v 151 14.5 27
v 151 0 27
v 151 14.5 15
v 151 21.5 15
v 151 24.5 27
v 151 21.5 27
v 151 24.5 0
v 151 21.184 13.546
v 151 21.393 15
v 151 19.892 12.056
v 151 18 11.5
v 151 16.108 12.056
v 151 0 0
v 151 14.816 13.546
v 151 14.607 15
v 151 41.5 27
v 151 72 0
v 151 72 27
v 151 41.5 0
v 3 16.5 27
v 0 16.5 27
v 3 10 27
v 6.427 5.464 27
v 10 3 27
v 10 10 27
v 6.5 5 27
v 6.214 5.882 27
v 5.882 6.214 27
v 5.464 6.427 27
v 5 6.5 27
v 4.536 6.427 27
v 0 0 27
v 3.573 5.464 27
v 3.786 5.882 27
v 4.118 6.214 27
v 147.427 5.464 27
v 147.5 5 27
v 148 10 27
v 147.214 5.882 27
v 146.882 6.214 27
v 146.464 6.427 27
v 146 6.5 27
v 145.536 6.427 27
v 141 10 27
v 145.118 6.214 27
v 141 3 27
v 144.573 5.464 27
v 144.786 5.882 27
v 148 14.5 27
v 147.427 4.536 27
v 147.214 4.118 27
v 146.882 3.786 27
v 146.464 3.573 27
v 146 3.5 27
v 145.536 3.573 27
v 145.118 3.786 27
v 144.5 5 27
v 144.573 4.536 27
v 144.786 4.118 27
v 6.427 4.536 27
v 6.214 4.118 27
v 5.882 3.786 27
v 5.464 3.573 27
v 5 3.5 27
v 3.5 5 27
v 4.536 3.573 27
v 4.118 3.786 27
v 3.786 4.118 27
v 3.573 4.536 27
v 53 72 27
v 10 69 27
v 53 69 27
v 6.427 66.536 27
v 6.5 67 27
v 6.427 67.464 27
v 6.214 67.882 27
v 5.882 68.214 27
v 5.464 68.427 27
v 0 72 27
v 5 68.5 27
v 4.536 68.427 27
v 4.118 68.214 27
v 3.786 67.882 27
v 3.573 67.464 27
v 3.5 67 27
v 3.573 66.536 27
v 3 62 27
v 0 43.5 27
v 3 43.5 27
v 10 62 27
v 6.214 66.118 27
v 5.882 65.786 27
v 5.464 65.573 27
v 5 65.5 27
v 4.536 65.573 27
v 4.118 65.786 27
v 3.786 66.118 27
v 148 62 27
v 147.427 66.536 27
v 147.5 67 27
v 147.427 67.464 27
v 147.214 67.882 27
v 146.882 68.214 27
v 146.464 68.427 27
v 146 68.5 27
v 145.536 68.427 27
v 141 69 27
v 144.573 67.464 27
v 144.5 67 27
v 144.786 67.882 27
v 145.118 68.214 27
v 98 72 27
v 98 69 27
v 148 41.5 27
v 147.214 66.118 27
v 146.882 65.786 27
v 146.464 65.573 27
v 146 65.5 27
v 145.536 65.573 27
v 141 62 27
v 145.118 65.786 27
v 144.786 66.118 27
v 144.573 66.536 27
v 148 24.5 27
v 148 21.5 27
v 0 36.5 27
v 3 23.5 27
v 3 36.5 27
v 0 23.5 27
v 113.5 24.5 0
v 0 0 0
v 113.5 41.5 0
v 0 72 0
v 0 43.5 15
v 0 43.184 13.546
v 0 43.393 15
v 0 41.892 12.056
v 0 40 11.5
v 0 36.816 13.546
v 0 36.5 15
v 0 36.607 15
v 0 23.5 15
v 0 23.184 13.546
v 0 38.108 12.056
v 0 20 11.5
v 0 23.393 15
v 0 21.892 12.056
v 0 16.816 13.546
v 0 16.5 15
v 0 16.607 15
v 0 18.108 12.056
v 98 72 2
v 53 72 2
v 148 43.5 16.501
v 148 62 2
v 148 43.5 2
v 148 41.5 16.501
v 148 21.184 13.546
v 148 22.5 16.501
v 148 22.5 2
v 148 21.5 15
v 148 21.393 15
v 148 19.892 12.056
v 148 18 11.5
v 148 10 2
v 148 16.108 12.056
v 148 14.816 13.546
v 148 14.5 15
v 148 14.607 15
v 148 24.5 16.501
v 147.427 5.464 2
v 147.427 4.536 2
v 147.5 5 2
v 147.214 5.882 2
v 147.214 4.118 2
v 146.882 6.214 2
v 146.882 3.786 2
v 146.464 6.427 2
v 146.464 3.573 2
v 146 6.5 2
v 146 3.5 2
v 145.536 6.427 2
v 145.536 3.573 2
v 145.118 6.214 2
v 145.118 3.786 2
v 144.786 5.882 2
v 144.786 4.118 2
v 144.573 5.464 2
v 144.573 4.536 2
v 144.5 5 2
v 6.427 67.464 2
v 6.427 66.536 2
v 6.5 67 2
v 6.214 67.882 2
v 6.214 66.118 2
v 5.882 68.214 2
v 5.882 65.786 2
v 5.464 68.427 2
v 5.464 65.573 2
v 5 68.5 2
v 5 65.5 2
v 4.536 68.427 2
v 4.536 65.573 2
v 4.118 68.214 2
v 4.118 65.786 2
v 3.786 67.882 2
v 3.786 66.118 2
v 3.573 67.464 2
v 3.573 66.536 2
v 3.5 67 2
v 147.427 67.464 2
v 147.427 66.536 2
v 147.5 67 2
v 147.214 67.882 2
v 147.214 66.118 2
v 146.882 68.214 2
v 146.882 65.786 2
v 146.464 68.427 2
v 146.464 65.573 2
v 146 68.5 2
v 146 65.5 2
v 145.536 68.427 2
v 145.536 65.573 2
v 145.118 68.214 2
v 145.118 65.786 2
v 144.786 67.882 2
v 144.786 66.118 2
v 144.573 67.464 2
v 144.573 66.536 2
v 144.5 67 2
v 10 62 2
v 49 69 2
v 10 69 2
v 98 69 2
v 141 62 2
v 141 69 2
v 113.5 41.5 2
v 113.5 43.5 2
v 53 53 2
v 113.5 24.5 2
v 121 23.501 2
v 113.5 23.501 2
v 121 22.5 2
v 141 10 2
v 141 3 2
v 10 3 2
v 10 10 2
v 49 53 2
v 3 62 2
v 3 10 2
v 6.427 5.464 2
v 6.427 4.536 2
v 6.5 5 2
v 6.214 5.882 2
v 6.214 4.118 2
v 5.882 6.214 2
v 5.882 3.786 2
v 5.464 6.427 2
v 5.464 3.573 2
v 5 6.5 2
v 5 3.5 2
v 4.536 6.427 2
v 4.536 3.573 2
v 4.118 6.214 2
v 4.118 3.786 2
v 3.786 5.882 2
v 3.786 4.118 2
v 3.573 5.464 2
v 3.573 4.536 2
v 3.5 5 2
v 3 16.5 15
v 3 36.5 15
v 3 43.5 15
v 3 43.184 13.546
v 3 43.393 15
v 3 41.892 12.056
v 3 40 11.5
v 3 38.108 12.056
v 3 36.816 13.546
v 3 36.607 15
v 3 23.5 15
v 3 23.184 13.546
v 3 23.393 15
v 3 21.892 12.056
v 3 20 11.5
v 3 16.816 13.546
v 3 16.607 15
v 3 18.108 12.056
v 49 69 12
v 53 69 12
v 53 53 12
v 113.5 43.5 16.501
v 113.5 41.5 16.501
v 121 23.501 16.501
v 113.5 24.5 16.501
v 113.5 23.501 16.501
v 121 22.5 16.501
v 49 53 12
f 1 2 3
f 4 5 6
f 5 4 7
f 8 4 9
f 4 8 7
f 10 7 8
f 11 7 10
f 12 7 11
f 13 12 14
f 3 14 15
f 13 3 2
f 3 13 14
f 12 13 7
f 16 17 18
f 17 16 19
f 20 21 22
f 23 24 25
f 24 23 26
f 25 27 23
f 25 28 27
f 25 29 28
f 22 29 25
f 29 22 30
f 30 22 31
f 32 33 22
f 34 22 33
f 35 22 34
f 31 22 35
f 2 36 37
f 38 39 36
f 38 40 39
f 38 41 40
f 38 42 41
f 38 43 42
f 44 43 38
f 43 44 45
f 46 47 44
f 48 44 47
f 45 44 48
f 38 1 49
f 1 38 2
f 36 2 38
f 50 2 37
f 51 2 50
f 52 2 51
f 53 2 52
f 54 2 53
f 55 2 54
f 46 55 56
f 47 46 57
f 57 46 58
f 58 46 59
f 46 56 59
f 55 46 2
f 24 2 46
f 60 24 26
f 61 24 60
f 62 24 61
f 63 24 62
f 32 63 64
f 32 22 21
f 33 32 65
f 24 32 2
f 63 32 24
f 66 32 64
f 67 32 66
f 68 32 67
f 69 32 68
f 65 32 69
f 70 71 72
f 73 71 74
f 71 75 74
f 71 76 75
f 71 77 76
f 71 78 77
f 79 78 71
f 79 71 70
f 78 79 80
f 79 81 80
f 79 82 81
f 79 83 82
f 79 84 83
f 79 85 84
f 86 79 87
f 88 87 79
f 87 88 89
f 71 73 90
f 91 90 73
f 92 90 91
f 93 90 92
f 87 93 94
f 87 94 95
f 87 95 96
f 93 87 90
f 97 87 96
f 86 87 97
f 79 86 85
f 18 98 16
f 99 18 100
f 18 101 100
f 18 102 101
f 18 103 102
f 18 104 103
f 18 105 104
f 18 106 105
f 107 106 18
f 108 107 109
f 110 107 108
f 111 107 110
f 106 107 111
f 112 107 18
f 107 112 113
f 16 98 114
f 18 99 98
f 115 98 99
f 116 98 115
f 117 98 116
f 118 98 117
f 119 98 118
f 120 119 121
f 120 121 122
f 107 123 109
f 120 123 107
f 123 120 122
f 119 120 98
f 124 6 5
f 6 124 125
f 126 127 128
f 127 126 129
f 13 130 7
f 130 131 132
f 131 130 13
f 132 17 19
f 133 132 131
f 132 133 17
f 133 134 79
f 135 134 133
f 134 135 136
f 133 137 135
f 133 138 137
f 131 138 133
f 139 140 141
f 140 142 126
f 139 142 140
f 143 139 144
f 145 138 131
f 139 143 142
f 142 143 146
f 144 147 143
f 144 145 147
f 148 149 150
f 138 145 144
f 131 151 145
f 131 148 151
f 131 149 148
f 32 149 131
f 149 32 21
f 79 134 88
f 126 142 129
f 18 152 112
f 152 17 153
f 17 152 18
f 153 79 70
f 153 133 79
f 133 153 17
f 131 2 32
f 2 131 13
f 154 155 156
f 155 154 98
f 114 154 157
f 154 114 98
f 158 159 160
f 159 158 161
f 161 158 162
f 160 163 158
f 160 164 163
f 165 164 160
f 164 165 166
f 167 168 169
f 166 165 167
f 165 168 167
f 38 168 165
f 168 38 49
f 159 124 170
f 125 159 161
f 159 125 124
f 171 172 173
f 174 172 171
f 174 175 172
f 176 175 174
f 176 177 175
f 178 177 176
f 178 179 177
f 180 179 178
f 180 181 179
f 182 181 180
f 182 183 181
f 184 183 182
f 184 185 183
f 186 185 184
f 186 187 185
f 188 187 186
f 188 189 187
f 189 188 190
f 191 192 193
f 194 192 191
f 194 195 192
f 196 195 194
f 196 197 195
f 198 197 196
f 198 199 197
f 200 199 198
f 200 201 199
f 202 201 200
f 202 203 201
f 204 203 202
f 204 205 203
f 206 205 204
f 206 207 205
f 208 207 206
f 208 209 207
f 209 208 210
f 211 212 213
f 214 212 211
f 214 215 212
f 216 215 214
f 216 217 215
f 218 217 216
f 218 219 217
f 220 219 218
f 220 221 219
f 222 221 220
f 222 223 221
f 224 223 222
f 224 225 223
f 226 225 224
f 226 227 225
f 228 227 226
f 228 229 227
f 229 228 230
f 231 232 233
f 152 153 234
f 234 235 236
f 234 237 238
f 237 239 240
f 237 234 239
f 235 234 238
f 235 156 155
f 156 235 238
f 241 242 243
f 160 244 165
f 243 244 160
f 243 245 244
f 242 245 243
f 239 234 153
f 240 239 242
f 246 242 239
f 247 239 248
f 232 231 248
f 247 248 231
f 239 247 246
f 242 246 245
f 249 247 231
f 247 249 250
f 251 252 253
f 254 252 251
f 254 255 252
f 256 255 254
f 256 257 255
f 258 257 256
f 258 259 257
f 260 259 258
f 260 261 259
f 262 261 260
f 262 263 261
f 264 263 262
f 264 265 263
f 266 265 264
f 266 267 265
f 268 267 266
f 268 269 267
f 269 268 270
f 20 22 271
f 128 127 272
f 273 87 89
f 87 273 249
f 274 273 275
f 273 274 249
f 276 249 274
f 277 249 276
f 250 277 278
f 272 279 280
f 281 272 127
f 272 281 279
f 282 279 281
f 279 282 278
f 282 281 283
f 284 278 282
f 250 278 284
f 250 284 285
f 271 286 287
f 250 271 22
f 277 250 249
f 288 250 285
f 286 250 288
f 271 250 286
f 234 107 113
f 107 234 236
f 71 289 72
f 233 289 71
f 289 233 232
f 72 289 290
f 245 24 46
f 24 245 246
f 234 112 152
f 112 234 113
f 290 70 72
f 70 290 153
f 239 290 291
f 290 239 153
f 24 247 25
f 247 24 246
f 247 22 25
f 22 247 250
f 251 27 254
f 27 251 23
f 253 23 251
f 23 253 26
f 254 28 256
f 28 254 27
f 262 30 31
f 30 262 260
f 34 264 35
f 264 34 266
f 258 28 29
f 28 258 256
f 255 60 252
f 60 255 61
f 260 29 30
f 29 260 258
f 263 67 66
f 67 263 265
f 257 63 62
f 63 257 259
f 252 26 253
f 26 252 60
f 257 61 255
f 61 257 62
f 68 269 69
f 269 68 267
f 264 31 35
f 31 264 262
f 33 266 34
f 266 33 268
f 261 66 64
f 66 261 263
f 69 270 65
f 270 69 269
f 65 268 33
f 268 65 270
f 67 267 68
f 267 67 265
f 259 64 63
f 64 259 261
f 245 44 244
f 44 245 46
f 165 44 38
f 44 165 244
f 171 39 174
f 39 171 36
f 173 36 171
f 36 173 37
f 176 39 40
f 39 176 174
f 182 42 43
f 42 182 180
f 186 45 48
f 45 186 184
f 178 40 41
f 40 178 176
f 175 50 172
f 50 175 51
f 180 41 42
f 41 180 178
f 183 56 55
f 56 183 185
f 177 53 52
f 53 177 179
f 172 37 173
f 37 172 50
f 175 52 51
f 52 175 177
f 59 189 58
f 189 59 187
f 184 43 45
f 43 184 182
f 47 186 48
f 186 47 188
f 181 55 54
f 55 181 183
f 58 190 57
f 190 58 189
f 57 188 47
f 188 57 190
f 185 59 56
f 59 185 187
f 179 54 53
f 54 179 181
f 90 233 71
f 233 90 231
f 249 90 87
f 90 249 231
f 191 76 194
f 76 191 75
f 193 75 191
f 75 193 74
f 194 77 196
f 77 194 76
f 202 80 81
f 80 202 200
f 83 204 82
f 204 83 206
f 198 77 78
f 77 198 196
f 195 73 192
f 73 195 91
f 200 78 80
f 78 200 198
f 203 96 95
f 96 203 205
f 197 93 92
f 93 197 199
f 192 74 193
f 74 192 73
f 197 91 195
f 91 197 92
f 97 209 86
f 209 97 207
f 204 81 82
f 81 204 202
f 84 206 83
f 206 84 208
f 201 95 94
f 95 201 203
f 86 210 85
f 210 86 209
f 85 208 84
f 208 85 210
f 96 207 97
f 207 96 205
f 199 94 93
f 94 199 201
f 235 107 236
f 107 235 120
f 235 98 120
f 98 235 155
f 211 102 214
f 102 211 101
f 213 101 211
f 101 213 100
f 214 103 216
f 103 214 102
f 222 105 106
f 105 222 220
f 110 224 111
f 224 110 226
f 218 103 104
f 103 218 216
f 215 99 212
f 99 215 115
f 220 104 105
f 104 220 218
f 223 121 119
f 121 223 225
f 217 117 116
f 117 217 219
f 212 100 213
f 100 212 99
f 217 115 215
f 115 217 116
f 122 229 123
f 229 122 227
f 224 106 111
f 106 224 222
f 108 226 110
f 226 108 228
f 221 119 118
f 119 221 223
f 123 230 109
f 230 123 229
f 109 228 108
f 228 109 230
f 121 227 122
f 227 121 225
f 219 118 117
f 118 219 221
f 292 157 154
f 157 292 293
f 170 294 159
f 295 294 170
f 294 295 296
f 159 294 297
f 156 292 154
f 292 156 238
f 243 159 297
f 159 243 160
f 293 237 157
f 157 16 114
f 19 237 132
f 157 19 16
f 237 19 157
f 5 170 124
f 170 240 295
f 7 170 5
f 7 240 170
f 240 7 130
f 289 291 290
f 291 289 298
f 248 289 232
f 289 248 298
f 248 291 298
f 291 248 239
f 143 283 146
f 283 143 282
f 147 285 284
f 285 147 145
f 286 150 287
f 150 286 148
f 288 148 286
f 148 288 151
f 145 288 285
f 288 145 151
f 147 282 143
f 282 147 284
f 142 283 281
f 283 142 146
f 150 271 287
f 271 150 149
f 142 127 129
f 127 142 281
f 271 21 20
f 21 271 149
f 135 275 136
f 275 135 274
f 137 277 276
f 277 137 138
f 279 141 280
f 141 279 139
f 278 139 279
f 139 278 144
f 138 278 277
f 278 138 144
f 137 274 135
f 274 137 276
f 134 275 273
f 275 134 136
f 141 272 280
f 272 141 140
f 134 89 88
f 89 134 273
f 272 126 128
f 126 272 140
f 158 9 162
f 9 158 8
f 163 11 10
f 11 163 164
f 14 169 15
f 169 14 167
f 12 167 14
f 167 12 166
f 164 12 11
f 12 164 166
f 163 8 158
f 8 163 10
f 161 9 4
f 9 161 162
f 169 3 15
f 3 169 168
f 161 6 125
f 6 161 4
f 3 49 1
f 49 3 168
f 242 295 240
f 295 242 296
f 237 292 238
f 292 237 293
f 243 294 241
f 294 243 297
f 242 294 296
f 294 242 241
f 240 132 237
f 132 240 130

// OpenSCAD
w1 = 45;
w2 = 76;
w3 = 91;

h1 = 20.5;
h2 = 49.5;
h3 = 69;

d = 19;

module shelly() {
  translate([(w3-w1)/2, 0, 0])
    cube([w1, h3, d]);
  translate([(w3-w2)/2, 0, 0])
    cube([w2, h2, d]);
  cube([w3, h1, d]);
}

module screw_hole(x, y) {
  translate([x, y, 0])
  difference() {
    cube([10, 10, d+2*2 + 4]);
    translate([5, 5, 2])
      cylinder(50, d=3, $fn=20);
  }
}

module case() {
  difference() {
    cube([w3+60, h3+3, d+2*2 + 4]);

    translate([3, 3, 2])
    cube([w3+54, h3-3, d+2*2 + 4]);

    translate([(w3-w1)/2+30, 3.1, 2])
      cube([w1, h3, d+10]);
  }

  screw_hole(0, 0);
  screw_hole(w3 + 60 - 10, 0);
  screw_hole(0, h3 - 7);
  screw_hole(w3 + 60 - 10, h3 - 7);
}

module lan_port() {
  translate([w2 + 30, h1 + 2, 0])
  difference() {
    cube([45, 21, 13.5 + 3.001]);
    color("green")
    translate([0, 2, -0.001])
    cube([50, 17, 20]);
  }
}

module lan_cutout() {
  translate([w2 + (w3-w2)/2 + 30, h1 + 2, 0])
    translate([0, 2, -0.001])
      cube([50, 17, 30]);
}

module power_cord_hole(x, y) {
  translate([x, y, 15])
  color("black") {
    rotate([0, 90, 0])
    cylinder(20, d=7, center=true);
    translate([0, 0, 15])
    cube([20, 7, 30], center=true);
  }
}

difference() {
  union() {
    case();
    lan_port();

    // left stopper top
    translate([30 + (w3-w1)/2 - 4, h3 - 19 + 3, 0])
    cube([6, 19, 12]);

    // left stopper bottom
    // TODO: Needs to be shifted left if we need this
    //translate([30 - 4, 0, 0])
    //cube([6, 6, 12]);
  }
  lan_cutout();

  // output
  power_cord_hole(0, 20);
  power_cord_hole(0, 40);

  // input
  power_cord_hole(w3 + 60, 18);

  color("red")
  translate([30, 3.001, 2])
  shelly();
}
